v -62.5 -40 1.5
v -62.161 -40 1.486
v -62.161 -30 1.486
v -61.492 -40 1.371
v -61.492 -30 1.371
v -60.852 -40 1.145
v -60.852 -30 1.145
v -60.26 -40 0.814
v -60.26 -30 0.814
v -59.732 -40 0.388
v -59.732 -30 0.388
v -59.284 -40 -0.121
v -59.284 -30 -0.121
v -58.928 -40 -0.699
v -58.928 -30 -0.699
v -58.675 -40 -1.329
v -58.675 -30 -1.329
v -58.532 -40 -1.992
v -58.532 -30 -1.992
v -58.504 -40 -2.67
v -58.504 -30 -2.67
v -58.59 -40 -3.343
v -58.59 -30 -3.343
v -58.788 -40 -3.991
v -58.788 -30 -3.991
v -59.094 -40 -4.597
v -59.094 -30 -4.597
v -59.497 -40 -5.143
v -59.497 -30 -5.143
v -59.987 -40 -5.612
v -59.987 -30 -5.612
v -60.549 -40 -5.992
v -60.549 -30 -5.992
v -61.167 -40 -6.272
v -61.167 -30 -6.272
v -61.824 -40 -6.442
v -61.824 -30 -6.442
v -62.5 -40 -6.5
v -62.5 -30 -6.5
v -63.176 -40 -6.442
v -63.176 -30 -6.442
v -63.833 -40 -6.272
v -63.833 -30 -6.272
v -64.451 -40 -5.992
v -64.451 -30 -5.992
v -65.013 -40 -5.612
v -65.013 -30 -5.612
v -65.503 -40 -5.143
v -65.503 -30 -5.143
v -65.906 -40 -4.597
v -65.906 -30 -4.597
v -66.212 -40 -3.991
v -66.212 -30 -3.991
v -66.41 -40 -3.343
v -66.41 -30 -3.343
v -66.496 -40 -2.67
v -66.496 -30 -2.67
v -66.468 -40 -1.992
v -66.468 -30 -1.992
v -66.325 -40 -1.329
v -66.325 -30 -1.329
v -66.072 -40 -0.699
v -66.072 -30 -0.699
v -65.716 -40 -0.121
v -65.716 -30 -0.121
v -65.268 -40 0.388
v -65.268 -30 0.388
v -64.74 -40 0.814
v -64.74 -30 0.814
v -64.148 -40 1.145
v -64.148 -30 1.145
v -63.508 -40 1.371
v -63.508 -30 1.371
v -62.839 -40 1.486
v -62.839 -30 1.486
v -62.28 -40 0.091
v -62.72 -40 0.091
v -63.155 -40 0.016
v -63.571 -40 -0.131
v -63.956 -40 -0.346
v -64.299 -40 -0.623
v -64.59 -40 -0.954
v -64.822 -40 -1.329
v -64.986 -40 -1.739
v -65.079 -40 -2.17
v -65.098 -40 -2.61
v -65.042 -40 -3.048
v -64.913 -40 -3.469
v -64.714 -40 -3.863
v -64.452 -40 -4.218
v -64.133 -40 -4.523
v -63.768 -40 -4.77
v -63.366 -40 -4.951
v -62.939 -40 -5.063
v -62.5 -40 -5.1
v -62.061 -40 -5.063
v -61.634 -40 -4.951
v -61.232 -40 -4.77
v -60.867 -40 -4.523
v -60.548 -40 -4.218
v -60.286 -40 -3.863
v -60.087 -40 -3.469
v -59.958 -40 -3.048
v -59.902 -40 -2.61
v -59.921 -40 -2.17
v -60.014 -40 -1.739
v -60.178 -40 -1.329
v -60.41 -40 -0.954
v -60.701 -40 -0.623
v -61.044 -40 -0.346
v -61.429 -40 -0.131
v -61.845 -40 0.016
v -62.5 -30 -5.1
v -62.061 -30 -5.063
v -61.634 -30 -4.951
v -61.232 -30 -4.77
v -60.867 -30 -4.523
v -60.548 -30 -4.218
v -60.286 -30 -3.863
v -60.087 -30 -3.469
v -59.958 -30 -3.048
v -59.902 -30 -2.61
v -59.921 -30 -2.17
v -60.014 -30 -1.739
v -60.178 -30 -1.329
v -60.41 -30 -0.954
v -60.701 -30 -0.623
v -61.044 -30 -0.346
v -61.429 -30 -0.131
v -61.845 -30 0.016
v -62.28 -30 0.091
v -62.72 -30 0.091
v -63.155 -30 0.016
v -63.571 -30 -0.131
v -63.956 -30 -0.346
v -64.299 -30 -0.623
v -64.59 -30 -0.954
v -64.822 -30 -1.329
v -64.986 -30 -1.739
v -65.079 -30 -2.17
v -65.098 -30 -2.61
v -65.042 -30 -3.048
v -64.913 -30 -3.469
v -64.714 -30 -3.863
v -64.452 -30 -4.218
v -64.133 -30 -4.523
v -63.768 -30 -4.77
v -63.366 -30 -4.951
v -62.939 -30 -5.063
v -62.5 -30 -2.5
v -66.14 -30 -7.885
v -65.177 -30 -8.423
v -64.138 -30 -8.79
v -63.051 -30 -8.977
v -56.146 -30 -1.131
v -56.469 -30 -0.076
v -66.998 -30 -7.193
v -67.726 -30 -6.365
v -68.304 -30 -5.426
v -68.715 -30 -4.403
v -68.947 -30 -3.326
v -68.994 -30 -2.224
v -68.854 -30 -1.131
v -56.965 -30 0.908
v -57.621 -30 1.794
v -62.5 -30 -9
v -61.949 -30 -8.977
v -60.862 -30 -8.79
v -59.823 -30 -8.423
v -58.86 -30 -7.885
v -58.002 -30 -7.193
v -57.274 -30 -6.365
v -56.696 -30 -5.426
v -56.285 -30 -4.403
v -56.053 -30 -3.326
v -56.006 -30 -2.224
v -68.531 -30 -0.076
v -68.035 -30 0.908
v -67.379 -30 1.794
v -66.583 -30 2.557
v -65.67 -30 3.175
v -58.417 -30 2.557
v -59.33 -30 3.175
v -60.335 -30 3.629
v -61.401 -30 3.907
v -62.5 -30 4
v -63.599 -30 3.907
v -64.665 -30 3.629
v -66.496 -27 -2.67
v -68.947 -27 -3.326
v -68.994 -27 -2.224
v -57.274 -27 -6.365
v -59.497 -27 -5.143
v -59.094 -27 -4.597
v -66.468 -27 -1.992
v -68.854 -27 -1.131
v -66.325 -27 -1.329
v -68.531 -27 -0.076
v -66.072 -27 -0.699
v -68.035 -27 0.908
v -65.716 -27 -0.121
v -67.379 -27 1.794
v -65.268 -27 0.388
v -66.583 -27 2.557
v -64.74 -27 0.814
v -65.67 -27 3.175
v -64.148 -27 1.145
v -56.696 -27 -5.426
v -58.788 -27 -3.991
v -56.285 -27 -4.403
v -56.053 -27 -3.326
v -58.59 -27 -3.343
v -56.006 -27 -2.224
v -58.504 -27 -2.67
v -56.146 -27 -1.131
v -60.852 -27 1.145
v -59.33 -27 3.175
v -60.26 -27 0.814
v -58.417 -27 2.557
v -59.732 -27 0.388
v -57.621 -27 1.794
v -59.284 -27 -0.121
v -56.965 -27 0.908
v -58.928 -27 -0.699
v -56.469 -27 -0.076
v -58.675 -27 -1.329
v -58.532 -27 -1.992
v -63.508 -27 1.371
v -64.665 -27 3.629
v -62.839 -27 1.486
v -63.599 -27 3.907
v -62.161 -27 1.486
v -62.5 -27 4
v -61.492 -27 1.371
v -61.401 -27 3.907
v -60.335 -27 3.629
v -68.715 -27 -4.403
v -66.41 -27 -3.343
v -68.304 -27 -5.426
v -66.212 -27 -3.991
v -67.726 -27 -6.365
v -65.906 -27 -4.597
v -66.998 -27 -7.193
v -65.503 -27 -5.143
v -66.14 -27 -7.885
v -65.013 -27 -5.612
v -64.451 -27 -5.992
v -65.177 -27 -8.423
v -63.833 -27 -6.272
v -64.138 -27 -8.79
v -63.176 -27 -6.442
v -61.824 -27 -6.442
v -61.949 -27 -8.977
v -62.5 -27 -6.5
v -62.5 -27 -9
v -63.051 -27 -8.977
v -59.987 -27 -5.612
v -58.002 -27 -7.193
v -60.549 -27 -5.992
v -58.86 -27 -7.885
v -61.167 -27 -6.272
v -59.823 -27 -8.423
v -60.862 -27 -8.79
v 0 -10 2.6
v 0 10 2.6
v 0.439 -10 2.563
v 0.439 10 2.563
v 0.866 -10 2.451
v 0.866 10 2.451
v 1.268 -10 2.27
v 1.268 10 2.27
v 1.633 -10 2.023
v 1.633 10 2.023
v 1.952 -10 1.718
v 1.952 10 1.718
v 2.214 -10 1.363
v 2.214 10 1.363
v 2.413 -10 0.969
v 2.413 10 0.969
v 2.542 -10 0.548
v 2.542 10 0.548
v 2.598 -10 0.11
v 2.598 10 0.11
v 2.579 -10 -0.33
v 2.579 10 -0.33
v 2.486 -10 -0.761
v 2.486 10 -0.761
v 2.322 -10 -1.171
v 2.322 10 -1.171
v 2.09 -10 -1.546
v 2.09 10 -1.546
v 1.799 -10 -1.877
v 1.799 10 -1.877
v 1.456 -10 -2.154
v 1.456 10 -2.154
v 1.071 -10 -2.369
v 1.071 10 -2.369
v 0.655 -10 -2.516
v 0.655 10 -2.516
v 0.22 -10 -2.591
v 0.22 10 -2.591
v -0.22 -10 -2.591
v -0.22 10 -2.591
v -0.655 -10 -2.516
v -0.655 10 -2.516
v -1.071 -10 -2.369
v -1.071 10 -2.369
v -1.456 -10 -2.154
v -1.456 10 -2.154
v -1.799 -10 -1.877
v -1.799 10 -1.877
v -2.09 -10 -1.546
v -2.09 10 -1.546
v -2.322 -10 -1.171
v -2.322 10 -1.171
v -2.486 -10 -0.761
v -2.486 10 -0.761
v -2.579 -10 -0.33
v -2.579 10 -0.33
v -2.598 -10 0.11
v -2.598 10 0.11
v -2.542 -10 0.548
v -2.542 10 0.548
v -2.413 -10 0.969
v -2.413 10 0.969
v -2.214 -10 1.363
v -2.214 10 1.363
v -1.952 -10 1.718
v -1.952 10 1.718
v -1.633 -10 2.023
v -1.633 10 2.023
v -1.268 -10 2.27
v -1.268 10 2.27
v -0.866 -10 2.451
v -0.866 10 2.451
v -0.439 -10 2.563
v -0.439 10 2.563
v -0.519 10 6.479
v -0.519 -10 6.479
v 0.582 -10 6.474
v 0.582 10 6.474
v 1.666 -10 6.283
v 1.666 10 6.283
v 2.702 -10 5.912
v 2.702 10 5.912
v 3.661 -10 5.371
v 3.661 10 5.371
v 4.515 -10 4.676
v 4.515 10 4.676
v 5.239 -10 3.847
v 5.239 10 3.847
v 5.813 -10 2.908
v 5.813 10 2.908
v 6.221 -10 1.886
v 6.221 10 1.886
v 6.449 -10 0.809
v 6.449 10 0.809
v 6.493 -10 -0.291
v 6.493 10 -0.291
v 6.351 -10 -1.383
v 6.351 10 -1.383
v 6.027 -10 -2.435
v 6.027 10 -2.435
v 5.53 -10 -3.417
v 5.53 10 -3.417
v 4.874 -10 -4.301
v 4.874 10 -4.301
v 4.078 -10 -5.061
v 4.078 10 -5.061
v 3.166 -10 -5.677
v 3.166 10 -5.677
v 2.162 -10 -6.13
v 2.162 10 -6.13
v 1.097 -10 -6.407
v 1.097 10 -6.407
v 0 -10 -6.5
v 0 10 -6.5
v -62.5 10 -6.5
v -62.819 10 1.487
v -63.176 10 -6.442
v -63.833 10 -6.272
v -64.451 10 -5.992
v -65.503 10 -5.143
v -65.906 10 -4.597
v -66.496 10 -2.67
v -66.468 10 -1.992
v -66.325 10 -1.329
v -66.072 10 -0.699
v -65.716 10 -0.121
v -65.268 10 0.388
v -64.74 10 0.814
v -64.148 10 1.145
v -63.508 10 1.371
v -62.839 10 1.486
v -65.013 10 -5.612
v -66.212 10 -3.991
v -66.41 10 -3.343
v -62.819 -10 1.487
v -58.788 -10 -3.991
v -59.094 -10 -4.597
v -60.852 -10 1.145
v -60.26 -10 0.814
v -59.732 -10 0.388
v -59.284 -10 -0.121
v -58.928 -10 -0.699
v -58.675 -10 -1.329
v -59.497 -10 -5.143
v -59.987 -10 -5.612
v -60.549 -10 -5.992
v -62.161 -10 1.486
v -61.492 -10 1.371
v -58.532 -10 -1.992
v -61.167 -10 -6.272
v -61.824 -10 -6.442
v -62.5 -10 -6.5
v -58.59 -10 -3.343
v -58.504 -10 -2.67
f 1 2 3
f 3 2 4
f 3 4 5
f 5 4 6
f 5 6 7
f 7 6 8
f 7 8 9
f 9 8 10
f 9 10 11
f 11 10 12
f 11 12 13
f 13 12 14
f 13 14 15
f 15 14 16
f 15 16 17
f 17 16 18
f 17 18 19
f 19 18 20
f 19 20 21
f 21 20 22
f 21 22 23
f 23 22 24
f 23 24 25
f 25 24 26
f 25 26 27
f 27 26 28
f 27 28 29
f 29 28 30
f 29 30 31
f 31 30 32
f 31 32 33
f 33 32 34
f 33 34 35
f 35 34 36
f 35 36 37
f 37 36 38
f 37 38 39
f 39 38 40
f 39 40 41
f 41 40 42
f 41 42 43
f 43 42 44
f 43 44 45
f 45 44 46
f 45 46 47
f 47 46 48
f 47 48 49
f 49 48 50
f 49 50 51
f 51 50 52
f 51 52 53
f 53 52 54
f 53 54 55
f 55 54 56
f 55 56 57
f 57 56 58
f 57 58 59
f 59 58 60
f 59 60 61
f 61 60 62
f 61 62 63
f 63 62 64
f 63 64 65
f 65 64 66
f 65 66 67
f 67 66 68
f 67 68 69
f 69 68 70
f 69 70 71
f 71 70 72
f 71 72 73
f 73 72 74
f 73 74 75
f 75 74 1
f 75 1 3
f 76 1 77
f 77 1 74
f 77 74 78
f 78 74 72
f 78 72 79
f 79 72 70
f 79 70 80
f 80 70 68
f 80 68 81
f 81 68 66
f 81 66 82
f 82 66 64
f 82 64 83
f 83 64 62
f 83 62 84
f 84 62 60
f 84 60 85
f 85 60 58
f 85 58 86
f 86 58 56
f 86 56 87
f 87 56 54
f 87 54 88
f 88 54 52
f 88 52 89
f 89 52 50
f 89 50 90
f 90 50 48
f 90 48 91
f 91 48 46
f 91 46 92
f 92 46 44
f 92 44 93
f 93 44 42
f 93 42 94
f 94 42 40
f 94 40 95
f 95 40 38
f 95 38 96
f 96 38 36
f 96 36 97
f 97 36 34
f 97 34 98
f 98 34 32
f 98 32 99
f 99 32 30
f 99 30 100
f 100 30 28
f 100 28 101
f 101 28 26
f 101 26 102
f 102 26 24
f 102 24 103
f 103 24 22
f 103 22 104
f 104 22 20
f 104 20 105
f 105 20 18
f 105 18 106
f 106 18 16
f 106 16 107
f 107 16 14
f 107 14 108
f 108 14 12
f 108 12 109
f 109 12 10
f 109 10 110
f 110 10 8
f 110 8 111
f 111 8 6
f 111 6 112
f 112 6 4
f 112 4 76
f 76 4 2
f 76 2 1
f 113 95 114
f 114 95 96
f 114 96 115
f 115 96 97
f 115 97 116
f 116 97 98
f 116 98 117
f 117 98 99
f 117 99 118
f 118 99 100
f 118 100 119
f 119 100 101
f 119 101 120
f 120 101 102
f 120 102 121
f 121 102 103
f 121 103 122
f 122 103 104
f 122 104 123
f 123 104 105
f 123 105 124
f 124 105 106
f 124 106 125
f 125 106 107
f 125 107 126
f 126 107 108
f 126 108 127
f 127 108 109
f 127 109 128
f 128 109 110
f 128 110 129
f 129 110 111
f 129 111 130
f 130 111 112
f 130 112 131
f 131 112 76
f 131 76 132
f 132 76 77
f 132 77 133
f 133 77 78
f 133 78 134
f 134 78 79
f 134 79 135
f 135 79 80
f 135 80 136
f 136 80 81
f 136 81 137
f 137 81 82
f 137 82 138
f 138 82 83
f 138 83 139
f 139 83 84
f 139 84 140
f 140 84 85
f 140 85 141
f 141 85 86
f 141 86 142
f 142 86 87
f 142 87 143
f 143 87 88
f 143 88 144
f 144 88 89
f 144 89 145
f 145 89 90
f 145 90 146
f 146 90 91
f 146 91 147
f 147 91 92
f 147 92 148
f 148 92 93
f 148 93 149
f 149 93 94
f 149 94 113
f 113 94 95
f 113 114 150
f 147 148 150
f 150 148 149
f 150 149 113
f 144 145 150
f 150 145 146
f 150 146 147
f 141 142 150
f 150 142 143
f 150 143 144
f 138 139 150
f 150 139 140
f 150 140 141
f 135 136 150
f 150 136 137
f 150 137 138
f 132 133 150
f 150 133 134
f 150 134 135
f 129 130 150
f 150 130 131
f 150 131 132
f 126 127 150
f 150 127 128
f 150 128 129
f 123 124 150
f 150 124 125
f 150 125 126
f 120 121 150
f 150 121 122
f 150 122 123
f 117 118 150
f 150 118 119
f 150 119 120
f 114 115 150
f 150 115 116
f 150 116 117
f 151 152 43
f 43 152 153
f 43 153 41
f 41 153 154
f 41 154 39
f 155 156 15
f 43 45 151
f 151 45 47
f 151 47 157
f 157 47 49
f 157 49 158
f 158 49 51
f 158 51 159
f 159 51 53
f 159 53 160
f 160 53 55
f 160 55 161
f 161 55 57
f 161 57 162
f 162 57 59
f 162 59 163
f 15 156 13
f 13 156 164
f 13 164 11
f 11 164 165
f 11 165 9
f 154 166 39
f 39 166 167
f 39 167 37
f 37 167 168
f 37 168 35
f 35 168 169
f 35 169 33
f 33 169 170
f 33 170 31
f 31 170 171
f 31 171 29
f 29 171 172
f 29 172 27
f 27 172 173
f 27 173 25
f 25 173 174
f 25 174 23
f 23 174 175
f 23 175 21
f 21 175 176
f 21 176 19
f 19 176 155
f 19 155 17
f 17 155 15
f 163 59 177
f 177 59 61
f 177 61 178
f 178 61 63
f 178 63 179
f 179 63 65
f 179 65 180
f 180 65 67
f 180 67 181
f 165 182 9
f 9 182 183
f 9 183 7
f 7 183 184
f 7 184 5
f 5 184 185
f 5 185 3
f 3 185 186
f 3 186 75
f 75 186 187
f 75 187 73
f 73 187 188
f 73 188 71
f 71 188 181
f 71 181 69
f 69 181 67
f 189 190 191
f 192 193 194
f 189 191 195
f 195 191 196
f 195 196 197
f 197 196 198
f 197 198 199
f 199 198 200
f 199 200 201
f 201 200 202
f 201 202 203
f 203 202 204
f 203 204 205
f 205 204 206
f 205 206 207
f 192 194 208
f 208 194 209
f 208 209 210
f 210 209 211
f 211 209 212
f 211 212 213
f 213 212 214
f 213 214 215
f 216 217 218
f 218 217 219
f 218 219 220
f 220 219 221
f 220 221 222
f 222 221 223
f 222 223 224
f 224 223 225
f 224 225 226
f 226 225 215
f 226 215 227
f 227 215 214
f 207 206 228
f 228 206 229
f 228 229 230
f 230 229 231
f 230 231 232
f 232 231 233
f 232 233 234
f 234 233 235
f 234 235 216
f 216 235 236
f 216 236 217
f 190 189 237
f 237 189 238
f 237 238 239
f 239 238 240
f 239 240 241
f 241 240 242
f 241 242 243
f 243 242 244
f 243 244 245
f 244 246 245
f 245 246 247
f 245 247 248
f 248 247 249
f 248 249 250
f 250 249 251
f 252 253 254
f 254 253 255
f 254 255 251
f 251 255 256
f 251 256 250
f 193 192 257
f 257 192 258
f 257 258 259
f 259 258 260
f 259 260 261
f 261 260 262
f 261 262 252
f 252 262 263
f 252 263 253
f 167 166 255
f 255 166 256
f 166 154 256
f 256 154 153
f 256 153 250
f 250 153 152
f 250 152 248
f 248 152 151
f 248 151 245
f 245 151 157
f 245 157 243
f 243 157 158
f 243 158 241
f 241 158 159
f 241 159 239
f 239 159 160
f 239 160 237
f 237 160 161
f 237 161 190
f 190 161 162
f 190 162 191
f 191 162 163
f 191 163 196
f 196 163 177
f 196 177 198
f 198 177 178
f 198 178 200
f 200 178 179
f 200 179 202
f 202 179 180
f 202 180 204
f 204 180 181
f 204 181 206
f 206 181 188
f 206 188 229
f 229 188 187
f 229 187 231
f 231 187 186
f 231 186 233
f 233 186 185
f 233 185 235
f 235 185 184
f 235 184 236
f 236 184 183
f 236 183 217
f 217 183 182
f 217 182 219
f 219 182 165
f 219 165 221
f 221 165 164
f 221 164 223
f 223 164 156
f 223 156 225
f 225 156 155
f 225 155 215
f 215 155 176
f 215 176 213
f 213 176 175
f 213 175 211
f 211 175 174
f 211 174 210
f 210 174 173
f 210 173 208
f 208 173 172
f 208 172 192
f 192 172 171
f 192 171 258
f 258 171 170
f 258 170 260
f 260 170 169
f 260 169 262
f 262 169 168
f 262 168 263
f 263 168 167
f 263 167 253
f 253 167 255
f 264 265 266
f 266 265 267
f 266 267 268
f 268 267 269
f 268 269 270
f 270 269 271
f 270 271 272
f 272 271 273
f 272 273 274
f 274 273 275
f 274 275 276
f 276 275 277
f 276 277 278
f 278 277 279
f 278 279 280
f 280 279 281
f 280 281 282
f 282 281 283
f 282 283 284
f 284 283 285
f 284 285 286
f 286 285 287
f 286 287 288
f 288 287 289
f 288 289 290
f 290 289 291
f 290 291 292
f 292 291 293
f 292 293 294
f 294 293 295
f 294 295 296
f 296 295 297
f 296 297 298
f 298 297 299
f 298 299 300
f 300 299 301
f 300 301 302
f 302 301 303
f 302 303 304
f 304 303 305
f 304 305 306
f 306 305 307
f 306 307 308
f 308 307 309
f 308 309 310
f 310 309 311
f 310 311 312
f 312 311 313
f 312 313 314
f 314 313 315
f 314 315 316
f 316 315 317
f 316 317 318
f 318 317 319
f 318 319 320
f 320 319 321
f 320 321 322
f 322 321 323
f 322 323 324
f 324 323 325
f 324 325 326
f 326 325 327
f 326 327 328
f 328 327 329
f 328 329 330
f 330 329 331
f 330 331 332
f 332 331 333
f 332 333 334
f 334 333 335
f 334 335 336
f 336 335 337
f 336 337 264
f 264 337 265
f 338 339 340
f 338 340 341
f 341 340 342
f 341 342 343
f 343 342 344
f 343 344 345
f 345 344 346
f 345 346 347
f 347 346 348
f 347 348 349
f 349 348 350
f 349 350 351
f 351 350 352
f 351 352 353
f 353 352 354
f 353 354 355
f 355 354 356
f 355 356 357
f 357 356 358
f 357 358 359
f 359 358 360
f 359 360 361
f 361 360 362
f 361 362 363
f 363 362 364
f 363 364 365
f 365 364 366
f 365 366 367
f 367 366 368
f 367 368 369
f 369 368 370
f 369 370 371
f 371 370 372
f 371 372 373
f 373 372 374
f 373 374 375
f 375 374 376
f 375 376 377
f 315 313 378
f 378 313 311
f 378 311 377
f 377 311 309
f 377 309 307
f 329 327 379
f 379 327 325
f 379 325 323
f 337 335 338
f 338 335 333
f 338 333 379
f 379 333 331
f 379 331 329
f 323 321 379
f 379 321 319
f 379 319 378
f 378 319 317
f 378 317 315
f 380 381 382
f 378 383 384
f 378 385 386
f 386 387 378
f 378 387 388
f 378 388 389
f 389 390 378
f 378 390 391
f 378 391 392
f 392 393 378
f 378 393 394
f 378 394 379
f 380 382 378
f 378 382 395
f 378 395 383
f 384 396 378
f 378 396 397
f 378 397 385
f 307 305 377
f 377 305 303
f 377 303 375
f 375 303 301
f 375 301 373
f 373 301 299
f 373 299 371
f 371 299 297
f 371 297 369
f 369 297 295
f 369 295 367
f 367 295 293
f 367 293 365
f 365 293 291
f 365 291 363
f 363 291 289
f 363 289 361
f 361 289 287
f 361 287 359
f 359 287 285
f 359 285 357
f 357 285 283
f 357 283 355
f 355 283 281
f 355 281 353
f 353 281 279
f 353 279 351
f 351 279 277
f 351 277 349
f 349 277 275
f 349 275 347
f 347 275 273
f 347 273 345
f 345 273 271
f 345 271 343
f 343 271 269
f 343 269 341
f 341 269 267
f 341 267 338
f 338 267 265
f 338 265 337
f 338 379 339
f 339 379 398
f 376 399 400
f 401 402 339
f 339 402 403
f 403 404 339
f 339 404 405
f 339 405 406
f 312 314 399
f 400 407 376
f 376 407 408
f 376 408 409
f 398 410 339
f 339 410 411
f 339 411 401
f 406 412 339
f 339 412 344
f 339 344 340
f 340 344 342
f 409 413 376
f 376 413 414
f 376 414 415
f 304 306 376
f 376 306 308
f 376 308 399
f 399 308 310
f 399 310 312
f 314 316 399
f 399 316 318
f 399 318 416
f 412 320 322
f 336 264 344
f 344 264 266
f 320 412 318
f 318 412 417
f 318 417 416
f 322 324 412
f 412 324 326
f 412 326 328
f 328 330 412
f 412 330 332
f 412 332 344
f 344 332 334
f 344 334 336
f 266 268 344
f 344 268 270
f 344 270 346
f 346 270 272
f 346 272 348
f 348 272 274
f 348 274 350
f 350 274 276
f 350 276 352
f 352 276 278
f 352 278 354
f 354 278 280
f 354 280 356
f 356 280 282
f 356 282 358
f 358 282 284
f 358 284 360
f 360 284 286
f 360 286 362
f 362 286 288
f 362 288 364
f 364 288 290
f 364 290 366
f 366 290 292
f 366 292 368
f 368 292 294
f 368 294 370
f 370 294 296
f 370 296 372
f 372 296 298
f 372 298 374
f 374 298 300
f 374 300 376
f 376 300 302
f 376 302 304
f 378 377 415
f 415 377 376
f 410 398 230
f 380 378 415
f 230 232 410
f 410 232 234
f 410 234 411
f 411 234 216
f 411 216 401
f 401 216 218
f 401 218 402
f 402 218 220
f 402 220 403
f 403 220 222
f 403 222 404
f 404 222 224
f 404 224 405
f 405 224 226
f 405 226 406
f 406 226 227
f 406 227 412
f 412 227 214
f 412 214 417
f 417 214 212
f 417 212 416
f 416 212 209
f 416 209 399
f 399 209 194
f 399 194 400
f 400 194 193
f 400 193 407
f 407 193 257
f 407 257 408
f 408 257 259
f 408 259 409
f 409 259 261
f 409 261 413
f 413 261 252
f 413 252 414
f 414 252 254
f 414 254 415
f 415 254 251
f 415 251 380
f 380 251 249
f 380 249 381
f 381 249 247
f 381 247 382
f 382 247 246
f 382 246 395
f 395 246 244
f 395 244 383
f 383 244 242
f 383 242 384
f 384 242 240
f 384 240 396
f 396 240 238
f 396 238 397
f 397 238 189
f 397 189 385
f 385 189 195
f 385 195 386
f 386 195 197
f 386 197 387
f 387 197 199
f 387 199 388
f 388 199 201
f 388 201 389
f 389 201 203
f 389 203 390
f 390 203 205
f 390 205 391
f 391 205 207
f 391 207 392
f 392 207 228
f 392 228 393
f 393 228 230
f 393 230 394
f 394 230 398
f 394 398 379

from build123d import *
from build123d.topology import SkipClean

# Parameters (mm, degrees)
SALIENTE_EXTRUIR1_DEPTH = 10
CROQUIS2_R              = 2.6
CORTAR_EXTRUIR1_DEPTH   = 70.745967625
CROQUIS3_R              = 4
SALIENTE_EXTRUIR2_DEPTH = 30
CROQUIS4_R              = 2.6
CORTAR_EXTRUIR2_DEPTH   = 10
SALIENTE_EXTRUIR3_START = -13
CROQUIS5_R              = 6.5
CROQUIS5_R_2            = 4
SALIENTE_EXTRUIR3_DEPTH = 3


with BuildPart() as part:
    # Croquis1 → Saliente-Extruir1 (new, symmetric)
    with BuildSketch(Plane(origin=(0, 0, 0), x_dir=(1, 0, 0), z_dir=(0, 1, 0))):
        with BuildLine():
            Line((-62.5, 6.5), (0, 6.5))
            ThreePointArc((0, 6.5), (6.494806232, -0.259792249), (-0.519169329, -6.479233227))
            Line((-0.519169329, -6.479233227), (-62.819488818, -1.487220447))
            ThreePointArc((-62.819488818, -1.487220447), (-66.496803835, 2.659872153), (-62.5, 6.5))
        make_face()
    extrude(amount=SALIENTE_EXTRUIR1_DEPTH, both=True)

    # Croquis2 → Cortar-Extruir1 (cut, through all)
    with BuildSketch(Plane(origin=(0, 10, 0), x_dir=(1, 0, 0), z_dir=(0, 1, 0))):
        Circle(CROQUIS2_R)
    extrude(amount=-CORTAR_EXTRUIR1_DEPTH, mode=Mode.SUBTRACT)

    # Croquis3 → Saliente-Extruir2 (add)
    with SkipClean():  # the faces are left unmerged after this step: merging them gives an invalid solid
        with BuildSketch(Plane(origin=(0, -10, 0), x_dir=(1, 0, 0), z_dir=(0, 1, 0))):
            with Locations((-62.5, 2.5)):
                Circle(CROQUIS3_R)
        extrude(amount=-SALIENTE_EXTRUIR2_DEPTH)

    # Croquis4 → Cortar-Extruir2 (cut)
    with SkipClean():  # the faces are left unmerged after this step: merging them gives an invalid solid
        with BuildSketch(Plane(origin=(0, -40, 0), x_dir=(-1, 0, 0), z_dir=(0, -1, 0))):
            with Locations((62.5, 2.5)):
                Circle(CROQUIS4_R)
        extrude(amount=-CORTAR_EXTRUIR2_DEPTH, mode=Mode.SUBTRACT)

    # Croquis5 → Saliente-Extruir3 (add)
    with SkipClean():  # the faces are left unmerged after this step: merging them gives an invalid solid
        with BuildSketch(Plane.XZ.offset(40).offset(SALIENTE_EXTRUIR3_START)):
            with Locations((-62.5, -2.5)):
                Circle(CROQUIS5_R)
            with Locations((-62.5, -2.5)):
                Circle(CROQUIS5_R_2, mode=Mode.SUBTRACT)
        extrude(amount=SALIENTE_EXTRUIR3_DEPTH)


solid = part.part
